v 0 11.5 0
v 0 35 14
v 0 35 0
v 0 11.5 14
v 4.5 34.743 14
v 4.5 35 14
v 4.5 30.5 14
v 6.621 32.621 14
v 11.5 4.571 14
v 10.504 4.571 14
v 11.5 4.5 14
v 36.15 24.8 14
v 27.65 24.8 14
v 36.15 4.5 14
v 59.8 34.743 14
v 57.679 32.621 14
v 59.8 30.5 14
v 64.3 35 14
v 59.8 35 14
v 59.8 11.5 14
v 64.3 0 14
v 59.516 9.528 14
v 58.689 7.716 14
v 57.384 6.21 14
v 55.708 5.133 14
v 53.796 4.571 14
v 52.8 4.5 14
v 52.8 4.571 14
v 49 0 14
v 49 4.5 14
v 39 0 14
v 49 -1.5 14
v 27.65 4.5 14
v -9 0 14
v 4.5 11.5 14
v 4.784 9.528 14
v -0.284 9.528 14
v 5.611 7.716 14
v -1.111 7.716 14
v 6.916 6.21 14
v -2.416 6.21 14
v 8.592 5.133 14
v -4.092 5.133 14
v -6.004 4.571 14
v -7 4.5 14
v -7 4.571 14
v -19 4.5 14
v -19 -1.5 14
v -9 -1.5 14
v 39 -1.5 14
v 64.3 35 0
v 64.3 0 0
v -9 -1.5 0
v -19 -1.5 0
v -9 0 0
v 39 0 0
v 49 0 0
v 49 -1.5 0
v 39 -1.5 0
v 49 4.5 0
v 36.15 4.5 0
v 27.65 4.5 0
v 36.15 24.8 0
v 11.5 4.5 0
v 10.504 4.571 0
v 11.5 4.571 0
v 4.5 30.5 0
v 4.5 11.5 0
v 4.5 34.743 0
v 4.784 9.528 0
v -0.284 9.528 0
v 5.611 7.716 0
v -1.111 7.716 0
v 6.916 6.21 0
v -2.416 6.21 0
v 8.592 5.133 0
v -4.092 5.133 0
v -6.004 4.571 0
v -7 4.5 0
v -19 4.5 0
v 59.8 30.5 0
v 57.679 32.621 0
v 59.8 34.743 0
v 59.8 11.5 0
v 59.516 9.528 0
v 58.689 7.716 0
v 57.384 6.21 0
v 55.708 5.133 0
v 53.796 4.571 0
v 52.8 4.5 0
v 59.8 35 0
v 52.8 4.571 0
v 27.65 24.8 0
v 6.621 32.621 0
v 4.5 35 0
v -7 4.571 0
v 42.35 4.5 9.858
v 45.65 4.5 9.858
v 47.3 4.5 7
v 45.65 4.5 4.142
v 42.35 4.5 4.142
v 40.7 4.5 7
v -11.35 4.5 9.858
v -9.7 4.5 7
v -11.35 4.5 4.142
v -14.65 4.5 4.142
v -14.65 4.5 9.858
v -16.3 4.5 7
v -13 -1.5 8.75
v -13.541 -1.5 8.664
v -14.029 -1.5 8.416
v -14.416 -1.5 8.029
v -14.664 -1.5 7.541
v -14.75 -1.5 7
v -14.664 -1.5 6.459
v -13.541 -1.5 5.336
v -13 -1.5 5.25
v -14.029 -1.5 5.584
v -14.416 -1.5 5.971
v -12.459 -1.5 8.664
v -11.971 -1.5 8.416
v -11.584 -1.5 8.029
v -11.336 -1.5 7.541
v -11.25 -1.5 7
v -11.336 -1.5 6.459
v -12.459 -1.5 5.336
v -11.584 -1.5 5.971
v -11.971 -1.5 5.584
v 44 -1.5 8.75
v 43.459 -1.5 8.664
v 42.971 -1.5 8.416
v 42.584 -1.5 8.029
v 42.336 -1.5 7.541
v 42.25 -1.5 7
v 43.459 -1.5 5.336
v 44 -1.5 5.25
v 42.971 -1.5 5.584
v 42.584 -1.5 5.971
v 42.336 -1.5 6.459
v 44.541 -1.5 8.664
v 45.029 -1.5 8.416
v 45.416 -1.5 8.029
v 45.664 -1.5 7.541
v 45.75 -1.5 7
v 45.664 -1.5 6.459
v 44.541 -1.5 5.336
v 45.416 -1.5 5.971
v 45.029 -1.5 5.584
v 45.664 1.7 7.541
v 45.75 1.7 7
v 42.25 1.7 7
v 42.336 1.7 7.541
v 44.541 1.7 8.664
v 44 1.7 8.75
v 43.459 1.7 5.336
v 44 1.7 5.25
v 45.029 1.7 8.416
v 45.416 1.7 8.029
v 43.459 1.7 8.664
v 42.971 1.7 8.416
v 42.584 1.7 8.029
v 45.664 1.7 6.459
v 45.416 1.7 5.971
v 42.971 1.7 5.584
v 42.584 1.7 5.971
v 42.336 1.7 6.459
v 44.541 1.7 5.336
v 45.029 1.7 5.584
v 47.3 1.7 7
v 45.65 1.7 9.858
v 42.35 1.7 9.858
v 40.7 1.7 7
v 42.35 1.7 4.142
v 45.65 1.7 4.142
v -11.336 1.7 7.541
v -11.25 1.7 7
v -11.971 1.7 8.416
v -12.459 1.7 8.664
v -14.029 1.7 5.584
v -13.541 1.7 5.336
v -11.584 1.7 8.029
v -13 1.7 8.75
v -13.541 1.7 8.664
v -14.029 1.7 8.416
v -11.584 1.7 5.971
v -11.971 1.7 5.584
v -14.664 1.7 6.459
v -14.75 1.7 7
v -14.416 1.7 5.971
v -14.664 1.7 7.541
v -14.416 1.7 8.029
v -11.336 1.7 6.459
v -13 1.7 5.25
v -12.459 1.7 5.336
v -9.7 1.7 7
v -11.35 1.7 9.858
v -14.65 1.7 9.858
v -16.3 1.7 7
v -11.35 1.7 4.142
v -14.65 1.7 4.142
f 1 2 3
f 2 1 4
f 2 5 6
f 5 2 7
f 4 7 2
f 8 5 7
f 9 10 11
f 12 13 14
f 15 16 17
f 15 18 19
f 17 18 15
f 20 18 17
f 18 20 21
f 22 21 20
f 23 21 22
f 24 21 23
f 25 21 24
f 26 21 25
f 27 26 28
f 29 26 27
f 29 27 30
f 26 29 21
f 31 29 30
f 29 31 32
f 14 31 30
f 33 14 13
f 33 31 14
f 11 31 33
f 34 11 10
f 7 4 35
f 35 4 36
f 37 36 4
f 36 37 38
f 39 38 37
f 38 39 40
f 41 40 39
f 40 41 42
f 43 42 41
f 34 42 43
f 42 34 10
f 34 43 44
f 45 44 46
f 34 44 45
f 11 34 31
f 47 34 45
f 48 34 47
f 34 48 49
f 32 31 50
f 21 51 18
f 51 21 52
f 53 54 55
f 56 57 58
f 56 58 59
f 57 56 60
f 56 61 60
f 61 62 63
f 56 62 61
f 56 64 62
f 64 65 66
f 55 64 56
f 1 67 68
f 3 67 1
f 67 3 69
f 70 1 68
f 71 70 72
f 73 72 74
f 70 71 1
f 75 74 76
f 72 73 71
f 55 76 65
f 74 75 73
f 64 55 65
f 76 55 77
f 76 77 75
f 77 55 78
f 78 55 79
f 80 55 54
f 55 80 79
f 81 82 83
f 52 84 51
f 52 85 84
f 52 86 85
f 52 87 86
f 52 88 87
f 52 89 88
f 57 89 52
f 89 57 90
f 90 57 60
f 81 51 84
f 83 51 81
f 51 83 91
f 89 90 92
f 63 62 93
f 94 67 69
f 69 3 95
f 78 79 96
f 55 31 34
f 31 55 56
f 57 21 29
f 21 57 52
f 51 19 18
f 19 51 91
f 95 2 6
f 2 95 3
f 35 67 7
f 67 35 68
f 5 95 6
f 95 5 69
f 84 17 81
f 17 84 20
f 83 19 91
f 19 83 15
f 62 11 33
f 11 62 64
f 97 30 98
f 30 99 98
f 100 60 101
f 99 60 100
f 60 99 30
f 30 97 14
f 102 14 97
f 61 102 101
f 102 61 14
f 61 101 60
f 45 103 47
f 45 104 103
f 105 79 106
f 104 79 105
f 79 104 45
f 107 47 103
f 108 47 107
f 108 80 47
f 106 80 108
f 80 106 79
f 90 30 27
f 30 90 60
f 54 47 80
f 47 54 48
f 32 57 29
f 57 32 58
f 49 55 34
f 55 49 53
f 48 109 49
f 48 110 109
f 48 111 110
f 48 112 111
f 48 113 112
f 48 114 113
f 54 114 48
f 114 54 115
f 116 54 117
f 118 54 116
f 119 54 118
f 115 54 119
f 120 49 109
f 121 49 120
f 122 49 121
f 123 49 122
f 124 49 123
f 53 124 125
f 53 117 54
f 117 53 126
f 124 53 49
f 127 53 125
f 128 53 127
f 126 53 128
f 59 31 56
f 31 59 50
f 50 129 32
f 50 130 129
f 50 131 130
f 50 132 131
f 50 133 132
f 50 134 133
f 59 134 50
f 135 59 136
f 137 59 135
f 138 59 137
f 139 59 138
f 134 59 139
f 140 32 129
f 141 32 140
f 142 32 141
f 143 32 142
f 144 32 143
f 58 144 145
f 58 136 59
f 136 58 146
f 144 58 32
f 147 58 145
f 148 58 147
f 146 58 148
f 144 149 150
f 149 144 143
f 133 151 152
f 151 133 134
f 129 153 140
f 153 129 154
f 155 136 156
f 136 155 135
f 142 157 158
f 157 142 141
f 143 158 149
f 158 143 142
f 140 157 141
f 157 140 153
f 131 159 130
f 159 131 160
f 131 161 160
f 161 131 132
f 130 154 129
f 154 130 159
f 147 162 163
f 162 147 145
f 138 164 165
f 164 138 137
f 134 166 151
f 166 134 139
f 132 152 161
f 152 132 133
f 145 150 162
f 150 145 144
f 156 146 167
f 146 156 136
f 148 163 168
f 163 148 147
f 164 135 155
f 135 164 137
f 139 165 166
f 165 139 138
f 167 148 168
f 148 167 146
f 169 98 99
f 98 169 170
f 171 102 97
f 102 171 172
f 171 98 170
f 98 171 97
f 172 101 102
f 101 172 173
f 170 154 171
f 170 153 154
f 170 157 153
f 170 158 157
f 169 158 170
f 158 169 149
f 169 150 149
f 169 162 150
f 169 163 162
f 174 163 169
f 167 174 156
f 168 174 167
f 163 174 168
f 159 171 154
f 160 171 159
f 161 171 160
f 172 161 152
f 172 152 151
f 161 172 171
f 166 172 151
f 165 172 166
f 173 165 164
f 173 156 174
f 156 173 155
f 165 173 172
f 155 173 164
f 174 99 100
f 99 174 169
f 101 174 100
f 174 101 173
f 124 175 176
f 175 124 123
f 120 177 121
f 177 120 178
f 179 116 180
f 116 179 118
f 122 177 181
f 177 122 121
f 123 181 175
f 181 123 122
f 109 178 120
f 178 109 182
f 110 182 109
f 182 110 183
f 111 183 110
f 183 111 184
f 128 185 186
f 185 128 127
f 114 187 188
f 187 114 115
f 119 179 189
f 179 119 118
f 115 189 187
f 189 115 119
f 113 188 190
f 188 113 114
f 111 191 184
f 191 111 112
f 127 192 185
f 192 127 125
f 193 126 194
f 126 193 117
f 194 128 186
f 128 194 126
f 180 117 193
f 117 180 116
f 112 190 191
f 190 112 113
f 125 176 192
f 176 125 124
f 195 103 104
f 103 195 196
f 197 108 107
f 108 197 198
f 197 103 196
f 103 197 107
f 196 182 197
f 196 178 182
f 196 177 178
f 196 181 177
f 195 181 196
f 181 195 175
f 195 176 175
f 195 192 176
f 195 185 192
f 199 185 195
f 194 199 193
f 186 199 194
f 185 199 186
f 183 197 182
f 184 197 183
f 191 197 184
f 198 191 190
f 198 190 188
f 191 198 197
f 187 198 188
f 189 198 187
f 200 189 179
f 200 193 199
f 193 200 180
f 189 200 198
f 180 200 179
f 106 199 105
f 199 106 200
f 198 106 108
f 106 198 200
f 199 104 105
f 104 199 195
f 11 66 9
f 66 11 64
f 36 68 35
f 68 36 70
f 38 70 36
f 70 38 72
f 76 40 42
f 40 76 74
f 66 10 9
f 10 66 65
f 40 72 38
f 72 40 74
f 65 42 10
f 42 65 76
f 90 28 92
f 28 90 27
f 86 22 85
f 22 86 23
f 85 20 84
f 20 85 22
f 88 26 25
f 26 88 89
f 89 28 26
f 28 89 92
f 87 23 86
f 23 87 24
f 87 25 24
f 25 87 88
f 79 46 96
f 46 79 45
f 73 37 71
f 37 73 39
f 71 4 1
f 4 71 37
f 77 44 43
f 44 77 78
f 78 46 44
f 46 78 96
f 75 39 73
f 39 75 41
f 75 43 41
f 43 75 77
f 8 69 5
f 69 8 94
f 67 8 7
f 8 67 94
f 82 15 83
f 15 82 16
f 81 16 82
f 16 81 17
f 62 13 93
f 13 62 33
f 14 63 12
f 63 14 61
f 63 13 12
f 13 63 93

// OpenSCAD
drill = 3.5;
drillDistance = 4;
SAV_holes = 57;

length = 70;
width = 25;

wallWidth = 4.5;
clipL = 55.3;
clipW = 35;
clipH = 14;

supportL = 68;
supportW = wallWidth;
supportH = 14;

restL = 10;
restW = 1.5;
restH = supportH;


gripS = 3;

frameW = 6.3; // i3 frame width
M3NutD = 6.6;
M3NutH = 3;

module SAV_drills ( )
{
	cylinder ( r=drill/2, h=20, $fn=20 );
	translate ( [0,0,wallWidth-0.2])
		cylinder ( r=M3NutD/2, h=M3NutH, $fn=6 );

	translate ([SAV_holes, 0, 0])
	{
		cylinder ( r=drill/2, h=20, $fn=20 );
		translate ( [0,0,wallWidth-0.2])
			cylinder ( r=M3NutD/2, h=M3NutH, $fn=6 );
	}
}

module base (  )
{
	difference ()
	{
		union()
		{

			// Main clip structure
			difference ()
			{
				cube ([clipL+(2*wallWidth), clipW, clipH]);
				translate ([wallWidth, wallWidth, 0])
					cube ([clipL, clipW, clipH]); 
			}
		
			// base support and drills
			//translate ([-25,0,0])
			translate ([-19,0,0])
			{
				difference ()
				{
		
					union ()
					{
						cube ([supportL, supportW, supportH] );
						translate ([0, - restW, 0])
							cube ([restL, restW, restH]);
		
						translate ([supportL-restL, - restW, 0])
							cube ([restL, restW, restH]);
					}
				}
			}
		}
		translate ([-19+drillDistance+2, 2*wallWidth, clipH/2])
			rotate ([90, 0, 0])
			#SAV_drills();
	}
	
	// Grips
	translate ([wallWidth, clipW-wallWidth, 0])
		difference ()
		{
			rotate ([0,0,45])
				cube ([gripS,gripS,clipH]);
		}
	translate ([clipL + wallWidth, clipW-wallWidth, 0])
		rotate ([0,0,45])
			cube ([gripS,gripS,clipH]);

	// Reinforcement
	translate ([wallWidth, wallWidth, 0])
		difference ( )
		{
			cube ([clipH/2,clipH/2,clipH]);
			translate ([clipH/2,clipH/2,0])
				cylinder (r=clipH/2, h=clipH);
		}
	translate ([clipL-(clipH/2)+wallWidth, wallWidth, 0])
		difference ( )
		{
			cube ([clipH/2,clipH/2,clipH]);
			translate ([0,clipH/2,0])
				cylinder (r=clipH/2, h=clipH);
		}

	translate ([-(clipH/2), wallWidth, 0])
		difference ( )
		{
			cube ([clipH/2,clipH/2,clipH]);
			translate ([0,clipH/2,0])
				cylinder (r=clipH/2, h=clipH);
		}

	// support
	translate ([clipL/2, wallWidth, 0])
		cube ([8.5, clipW - wallWidth - frameW - (1.3*gripS), clipH]);
}

module frame ()
{
	translate ([wallWidth, clipW - frameW - 1.5*gripS, 0])
		cube([clipL, frameW, 60]);
}

base();
%frame ();
